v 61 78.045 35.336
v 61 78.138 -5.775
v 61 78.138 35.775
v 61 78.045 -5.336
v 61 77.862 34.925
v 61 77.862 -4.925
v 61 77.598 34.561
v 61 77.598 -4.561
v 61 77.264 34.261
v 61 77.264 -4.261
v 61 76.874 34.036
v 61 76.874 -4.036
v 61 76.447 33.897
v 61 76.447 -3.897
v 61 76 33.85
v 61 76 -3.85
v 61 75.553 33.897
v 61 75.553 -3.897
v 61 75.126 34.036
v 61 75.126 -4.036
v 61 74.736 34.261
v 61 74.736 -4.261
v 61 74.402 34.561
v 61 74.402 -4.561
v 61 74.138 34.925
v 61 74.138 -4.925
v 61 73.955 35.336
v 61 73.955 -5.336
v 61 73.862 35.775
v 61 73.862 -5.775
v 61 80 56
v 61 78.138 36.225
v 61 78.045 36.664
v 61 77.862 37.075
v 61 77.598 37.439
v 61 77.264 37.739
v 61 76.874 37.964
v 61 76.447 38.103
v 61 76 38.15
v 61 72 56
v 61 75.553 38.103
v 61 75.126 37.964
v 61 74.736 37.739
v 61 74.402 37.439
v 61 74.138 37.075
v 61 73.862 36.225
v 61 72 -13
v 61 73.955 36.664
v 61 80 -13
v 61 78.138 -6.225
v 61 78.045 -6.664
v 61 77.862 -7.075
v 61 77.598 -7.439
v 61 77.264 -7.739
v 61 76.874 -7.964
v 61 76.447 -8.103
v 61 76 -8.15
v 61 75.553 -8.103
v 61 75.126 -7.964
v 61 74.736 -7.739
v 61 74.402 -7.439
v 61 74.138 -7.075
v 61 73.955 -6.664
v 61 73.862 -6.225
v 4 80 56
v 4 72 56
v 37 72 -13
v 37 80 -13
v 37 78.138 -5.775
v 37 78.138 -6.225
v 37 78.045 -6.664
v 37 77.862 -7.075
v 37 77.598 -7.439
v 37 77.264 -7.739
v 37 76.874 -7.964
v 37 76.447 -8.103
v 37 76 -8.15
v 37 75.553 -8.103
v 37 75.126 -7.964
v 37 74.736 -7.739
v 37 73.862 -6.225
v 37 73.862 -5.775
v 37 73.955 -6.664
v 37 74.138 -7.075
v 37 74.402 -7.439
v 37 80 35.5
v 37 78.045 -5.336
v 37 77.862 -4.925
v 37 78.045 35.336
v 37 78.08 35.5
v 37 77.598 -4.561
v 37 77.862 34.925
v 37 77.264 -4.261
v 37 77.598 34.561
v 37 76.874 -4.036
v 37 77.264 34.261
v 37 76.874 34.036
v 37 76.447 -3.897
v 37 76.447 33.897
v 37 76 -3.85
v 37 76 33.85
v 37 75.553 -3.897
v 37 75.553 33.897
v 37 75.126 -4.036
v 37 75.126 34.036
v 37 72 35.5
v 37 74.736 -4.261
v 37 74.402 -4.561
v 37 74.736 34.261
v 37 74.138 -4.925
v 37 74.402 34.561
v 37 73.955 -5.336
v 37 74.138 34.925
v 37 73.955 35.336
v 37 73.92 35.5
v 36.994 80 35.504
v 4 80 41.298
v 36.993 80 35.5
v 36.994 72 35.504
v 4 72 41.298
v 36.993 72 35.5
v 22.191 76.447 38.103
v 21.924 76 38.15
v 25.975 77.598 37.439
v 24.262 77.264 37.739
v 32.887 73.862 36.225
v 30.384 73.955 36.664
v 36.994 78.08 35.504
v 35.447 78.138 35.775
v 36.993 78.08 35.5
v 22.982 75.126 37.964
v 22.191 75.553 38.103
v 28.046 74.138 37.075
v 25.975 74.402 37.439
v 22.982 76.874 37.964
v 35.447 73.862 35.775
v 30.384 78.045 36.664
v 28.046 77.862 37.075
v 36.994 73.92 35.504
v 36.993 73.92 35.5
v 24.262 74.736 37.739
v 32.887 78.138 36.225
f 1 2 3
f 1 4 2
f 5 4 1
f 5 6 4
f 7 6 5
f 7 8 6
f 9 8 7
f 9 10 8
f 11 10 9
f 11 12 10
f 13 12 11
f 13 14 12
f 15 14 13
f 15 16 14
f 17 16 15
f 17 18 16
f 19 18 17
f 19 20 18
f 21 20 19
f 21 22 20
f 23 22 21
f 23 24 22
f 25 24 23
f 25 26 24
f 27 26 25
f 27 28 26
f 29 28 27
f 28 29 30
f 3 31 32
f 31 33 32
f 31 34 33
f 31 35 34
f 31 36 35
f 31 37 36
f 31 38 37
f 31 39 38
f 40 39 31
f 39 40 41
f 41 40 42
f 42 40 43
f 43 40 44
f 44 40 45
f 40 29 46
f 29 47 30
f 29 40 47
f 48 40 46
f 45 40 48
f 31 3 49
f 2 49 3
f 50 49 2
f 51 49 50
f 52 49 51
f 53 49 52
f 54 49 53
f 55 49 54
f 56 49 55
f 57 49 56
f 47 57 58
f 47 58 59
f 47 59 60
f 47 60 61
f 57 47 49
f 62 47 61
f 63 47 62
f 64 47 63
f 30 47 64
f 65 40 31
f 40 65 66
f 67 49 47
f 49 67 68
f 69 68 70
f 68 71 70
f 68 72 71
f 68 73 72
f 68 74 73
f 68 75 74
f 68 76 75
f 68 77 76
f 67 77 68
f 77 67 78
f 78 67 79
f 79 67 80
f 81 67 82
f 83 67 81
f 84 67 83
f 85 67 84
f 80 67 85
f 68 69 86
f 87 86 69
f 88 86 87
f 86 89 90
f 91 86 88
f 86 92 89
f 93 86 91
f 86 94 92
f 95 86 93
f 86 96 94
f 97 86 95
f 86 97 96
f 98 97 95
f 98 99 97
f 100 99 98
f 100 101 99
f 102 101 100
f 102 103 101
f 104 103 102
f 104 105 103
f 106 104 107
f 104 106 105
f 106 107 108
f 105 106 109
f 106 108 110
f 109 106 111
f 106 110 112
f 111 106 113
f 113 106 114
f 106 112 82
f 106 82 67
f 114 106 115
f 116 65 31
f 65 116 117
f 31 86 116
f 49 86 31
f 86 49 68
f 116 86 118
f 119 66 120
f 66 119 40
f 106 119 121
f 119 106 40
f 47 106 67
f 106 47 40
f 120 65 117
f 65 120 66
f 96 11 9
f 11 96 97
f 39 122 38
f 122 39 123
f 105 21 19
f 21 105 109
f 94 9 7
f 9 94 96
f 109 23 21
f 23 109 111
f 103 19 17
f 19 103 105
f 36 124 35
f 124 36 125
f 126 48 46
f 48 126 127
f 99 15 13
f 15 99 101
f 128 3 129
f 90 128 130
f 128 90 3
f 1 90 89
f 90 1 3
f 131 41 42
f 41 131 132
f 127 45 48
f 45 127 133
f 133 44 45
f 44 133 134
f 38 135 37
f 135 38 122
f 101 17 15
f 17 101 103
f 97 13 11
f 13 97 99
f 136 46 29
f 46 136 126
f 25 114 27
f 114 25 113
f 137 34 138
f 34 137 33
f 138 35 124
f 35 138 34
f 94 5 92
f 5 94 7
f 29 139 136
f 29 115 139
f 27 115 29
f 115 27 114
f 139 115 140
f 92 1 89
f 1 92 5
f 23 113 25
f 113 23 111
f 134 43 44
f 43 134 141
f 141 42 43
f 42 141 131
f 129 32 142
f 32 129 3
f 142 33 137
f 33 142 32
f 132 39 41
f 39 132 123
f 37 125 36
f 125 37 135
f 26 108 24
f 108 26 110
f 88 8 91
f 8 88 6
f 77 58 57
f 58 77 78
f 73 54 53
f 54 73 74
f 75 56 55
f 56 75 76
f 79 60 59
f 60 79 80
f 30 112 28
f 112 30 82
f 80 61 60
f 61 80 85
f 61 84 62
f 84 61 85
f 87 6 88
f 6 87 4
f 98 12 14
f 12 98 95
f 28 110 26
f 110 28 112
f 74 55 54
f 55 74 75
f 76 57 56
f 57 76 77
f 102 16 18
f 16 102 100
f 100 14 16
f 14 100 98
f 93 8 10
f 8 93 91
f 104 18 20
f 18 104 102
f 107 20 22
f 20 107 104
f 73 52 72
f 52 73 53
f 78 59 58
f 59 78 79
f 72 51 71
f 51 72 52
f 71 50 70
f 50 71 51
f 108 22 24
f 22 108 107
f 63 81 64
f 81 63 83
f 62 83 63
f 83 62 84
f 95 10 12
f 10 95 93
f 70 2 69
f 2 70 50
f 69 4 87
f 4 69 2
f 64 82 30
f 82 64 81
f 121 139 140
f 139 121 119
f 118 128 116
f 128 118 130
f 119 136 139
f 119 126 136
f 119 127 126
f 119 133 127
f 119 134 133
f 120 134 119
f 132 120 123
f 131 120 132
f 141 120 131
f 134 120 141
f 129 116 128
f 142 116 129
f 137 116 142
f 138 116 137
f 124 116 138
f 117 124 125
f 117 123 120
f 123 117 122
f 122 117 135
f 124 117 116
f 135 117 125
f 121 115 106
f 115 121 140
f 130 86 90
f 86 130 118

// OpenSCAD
color ("pink")
difference() {
union () {
    // long left side
    translate([37,72,-13])
    cube([24,8,69]);
    
    // left top
    translate([4,72,48])
    cube([33,8,8]);
    
    // left top angle
    translate([3,72,54])
    rotate([0,99.96,0])
    cube([13,8,40]);
}
    // clean up top harness part
    translate([-10,70,30])
    cube([14,50,50]);

    // top holes left and right
    translate([-4,76,36])
    rotate([0,90,0])
    cylinder(r=2.15,90, $fn=30);
    
    // holes compatible with top guard rail
    translate([-4,76,-6])
    rotate([0,90,0])
    cylinder(r=2.15,90, $fn=30);
    
    // clean up angled piece
    translate([0,72,42])
    rotate([0,99.96,0])
    cube([4,40,37.56]);
    
    // clean up middle part
    translate([33,72,-83])
    cube([4,40,118.5]);
}
